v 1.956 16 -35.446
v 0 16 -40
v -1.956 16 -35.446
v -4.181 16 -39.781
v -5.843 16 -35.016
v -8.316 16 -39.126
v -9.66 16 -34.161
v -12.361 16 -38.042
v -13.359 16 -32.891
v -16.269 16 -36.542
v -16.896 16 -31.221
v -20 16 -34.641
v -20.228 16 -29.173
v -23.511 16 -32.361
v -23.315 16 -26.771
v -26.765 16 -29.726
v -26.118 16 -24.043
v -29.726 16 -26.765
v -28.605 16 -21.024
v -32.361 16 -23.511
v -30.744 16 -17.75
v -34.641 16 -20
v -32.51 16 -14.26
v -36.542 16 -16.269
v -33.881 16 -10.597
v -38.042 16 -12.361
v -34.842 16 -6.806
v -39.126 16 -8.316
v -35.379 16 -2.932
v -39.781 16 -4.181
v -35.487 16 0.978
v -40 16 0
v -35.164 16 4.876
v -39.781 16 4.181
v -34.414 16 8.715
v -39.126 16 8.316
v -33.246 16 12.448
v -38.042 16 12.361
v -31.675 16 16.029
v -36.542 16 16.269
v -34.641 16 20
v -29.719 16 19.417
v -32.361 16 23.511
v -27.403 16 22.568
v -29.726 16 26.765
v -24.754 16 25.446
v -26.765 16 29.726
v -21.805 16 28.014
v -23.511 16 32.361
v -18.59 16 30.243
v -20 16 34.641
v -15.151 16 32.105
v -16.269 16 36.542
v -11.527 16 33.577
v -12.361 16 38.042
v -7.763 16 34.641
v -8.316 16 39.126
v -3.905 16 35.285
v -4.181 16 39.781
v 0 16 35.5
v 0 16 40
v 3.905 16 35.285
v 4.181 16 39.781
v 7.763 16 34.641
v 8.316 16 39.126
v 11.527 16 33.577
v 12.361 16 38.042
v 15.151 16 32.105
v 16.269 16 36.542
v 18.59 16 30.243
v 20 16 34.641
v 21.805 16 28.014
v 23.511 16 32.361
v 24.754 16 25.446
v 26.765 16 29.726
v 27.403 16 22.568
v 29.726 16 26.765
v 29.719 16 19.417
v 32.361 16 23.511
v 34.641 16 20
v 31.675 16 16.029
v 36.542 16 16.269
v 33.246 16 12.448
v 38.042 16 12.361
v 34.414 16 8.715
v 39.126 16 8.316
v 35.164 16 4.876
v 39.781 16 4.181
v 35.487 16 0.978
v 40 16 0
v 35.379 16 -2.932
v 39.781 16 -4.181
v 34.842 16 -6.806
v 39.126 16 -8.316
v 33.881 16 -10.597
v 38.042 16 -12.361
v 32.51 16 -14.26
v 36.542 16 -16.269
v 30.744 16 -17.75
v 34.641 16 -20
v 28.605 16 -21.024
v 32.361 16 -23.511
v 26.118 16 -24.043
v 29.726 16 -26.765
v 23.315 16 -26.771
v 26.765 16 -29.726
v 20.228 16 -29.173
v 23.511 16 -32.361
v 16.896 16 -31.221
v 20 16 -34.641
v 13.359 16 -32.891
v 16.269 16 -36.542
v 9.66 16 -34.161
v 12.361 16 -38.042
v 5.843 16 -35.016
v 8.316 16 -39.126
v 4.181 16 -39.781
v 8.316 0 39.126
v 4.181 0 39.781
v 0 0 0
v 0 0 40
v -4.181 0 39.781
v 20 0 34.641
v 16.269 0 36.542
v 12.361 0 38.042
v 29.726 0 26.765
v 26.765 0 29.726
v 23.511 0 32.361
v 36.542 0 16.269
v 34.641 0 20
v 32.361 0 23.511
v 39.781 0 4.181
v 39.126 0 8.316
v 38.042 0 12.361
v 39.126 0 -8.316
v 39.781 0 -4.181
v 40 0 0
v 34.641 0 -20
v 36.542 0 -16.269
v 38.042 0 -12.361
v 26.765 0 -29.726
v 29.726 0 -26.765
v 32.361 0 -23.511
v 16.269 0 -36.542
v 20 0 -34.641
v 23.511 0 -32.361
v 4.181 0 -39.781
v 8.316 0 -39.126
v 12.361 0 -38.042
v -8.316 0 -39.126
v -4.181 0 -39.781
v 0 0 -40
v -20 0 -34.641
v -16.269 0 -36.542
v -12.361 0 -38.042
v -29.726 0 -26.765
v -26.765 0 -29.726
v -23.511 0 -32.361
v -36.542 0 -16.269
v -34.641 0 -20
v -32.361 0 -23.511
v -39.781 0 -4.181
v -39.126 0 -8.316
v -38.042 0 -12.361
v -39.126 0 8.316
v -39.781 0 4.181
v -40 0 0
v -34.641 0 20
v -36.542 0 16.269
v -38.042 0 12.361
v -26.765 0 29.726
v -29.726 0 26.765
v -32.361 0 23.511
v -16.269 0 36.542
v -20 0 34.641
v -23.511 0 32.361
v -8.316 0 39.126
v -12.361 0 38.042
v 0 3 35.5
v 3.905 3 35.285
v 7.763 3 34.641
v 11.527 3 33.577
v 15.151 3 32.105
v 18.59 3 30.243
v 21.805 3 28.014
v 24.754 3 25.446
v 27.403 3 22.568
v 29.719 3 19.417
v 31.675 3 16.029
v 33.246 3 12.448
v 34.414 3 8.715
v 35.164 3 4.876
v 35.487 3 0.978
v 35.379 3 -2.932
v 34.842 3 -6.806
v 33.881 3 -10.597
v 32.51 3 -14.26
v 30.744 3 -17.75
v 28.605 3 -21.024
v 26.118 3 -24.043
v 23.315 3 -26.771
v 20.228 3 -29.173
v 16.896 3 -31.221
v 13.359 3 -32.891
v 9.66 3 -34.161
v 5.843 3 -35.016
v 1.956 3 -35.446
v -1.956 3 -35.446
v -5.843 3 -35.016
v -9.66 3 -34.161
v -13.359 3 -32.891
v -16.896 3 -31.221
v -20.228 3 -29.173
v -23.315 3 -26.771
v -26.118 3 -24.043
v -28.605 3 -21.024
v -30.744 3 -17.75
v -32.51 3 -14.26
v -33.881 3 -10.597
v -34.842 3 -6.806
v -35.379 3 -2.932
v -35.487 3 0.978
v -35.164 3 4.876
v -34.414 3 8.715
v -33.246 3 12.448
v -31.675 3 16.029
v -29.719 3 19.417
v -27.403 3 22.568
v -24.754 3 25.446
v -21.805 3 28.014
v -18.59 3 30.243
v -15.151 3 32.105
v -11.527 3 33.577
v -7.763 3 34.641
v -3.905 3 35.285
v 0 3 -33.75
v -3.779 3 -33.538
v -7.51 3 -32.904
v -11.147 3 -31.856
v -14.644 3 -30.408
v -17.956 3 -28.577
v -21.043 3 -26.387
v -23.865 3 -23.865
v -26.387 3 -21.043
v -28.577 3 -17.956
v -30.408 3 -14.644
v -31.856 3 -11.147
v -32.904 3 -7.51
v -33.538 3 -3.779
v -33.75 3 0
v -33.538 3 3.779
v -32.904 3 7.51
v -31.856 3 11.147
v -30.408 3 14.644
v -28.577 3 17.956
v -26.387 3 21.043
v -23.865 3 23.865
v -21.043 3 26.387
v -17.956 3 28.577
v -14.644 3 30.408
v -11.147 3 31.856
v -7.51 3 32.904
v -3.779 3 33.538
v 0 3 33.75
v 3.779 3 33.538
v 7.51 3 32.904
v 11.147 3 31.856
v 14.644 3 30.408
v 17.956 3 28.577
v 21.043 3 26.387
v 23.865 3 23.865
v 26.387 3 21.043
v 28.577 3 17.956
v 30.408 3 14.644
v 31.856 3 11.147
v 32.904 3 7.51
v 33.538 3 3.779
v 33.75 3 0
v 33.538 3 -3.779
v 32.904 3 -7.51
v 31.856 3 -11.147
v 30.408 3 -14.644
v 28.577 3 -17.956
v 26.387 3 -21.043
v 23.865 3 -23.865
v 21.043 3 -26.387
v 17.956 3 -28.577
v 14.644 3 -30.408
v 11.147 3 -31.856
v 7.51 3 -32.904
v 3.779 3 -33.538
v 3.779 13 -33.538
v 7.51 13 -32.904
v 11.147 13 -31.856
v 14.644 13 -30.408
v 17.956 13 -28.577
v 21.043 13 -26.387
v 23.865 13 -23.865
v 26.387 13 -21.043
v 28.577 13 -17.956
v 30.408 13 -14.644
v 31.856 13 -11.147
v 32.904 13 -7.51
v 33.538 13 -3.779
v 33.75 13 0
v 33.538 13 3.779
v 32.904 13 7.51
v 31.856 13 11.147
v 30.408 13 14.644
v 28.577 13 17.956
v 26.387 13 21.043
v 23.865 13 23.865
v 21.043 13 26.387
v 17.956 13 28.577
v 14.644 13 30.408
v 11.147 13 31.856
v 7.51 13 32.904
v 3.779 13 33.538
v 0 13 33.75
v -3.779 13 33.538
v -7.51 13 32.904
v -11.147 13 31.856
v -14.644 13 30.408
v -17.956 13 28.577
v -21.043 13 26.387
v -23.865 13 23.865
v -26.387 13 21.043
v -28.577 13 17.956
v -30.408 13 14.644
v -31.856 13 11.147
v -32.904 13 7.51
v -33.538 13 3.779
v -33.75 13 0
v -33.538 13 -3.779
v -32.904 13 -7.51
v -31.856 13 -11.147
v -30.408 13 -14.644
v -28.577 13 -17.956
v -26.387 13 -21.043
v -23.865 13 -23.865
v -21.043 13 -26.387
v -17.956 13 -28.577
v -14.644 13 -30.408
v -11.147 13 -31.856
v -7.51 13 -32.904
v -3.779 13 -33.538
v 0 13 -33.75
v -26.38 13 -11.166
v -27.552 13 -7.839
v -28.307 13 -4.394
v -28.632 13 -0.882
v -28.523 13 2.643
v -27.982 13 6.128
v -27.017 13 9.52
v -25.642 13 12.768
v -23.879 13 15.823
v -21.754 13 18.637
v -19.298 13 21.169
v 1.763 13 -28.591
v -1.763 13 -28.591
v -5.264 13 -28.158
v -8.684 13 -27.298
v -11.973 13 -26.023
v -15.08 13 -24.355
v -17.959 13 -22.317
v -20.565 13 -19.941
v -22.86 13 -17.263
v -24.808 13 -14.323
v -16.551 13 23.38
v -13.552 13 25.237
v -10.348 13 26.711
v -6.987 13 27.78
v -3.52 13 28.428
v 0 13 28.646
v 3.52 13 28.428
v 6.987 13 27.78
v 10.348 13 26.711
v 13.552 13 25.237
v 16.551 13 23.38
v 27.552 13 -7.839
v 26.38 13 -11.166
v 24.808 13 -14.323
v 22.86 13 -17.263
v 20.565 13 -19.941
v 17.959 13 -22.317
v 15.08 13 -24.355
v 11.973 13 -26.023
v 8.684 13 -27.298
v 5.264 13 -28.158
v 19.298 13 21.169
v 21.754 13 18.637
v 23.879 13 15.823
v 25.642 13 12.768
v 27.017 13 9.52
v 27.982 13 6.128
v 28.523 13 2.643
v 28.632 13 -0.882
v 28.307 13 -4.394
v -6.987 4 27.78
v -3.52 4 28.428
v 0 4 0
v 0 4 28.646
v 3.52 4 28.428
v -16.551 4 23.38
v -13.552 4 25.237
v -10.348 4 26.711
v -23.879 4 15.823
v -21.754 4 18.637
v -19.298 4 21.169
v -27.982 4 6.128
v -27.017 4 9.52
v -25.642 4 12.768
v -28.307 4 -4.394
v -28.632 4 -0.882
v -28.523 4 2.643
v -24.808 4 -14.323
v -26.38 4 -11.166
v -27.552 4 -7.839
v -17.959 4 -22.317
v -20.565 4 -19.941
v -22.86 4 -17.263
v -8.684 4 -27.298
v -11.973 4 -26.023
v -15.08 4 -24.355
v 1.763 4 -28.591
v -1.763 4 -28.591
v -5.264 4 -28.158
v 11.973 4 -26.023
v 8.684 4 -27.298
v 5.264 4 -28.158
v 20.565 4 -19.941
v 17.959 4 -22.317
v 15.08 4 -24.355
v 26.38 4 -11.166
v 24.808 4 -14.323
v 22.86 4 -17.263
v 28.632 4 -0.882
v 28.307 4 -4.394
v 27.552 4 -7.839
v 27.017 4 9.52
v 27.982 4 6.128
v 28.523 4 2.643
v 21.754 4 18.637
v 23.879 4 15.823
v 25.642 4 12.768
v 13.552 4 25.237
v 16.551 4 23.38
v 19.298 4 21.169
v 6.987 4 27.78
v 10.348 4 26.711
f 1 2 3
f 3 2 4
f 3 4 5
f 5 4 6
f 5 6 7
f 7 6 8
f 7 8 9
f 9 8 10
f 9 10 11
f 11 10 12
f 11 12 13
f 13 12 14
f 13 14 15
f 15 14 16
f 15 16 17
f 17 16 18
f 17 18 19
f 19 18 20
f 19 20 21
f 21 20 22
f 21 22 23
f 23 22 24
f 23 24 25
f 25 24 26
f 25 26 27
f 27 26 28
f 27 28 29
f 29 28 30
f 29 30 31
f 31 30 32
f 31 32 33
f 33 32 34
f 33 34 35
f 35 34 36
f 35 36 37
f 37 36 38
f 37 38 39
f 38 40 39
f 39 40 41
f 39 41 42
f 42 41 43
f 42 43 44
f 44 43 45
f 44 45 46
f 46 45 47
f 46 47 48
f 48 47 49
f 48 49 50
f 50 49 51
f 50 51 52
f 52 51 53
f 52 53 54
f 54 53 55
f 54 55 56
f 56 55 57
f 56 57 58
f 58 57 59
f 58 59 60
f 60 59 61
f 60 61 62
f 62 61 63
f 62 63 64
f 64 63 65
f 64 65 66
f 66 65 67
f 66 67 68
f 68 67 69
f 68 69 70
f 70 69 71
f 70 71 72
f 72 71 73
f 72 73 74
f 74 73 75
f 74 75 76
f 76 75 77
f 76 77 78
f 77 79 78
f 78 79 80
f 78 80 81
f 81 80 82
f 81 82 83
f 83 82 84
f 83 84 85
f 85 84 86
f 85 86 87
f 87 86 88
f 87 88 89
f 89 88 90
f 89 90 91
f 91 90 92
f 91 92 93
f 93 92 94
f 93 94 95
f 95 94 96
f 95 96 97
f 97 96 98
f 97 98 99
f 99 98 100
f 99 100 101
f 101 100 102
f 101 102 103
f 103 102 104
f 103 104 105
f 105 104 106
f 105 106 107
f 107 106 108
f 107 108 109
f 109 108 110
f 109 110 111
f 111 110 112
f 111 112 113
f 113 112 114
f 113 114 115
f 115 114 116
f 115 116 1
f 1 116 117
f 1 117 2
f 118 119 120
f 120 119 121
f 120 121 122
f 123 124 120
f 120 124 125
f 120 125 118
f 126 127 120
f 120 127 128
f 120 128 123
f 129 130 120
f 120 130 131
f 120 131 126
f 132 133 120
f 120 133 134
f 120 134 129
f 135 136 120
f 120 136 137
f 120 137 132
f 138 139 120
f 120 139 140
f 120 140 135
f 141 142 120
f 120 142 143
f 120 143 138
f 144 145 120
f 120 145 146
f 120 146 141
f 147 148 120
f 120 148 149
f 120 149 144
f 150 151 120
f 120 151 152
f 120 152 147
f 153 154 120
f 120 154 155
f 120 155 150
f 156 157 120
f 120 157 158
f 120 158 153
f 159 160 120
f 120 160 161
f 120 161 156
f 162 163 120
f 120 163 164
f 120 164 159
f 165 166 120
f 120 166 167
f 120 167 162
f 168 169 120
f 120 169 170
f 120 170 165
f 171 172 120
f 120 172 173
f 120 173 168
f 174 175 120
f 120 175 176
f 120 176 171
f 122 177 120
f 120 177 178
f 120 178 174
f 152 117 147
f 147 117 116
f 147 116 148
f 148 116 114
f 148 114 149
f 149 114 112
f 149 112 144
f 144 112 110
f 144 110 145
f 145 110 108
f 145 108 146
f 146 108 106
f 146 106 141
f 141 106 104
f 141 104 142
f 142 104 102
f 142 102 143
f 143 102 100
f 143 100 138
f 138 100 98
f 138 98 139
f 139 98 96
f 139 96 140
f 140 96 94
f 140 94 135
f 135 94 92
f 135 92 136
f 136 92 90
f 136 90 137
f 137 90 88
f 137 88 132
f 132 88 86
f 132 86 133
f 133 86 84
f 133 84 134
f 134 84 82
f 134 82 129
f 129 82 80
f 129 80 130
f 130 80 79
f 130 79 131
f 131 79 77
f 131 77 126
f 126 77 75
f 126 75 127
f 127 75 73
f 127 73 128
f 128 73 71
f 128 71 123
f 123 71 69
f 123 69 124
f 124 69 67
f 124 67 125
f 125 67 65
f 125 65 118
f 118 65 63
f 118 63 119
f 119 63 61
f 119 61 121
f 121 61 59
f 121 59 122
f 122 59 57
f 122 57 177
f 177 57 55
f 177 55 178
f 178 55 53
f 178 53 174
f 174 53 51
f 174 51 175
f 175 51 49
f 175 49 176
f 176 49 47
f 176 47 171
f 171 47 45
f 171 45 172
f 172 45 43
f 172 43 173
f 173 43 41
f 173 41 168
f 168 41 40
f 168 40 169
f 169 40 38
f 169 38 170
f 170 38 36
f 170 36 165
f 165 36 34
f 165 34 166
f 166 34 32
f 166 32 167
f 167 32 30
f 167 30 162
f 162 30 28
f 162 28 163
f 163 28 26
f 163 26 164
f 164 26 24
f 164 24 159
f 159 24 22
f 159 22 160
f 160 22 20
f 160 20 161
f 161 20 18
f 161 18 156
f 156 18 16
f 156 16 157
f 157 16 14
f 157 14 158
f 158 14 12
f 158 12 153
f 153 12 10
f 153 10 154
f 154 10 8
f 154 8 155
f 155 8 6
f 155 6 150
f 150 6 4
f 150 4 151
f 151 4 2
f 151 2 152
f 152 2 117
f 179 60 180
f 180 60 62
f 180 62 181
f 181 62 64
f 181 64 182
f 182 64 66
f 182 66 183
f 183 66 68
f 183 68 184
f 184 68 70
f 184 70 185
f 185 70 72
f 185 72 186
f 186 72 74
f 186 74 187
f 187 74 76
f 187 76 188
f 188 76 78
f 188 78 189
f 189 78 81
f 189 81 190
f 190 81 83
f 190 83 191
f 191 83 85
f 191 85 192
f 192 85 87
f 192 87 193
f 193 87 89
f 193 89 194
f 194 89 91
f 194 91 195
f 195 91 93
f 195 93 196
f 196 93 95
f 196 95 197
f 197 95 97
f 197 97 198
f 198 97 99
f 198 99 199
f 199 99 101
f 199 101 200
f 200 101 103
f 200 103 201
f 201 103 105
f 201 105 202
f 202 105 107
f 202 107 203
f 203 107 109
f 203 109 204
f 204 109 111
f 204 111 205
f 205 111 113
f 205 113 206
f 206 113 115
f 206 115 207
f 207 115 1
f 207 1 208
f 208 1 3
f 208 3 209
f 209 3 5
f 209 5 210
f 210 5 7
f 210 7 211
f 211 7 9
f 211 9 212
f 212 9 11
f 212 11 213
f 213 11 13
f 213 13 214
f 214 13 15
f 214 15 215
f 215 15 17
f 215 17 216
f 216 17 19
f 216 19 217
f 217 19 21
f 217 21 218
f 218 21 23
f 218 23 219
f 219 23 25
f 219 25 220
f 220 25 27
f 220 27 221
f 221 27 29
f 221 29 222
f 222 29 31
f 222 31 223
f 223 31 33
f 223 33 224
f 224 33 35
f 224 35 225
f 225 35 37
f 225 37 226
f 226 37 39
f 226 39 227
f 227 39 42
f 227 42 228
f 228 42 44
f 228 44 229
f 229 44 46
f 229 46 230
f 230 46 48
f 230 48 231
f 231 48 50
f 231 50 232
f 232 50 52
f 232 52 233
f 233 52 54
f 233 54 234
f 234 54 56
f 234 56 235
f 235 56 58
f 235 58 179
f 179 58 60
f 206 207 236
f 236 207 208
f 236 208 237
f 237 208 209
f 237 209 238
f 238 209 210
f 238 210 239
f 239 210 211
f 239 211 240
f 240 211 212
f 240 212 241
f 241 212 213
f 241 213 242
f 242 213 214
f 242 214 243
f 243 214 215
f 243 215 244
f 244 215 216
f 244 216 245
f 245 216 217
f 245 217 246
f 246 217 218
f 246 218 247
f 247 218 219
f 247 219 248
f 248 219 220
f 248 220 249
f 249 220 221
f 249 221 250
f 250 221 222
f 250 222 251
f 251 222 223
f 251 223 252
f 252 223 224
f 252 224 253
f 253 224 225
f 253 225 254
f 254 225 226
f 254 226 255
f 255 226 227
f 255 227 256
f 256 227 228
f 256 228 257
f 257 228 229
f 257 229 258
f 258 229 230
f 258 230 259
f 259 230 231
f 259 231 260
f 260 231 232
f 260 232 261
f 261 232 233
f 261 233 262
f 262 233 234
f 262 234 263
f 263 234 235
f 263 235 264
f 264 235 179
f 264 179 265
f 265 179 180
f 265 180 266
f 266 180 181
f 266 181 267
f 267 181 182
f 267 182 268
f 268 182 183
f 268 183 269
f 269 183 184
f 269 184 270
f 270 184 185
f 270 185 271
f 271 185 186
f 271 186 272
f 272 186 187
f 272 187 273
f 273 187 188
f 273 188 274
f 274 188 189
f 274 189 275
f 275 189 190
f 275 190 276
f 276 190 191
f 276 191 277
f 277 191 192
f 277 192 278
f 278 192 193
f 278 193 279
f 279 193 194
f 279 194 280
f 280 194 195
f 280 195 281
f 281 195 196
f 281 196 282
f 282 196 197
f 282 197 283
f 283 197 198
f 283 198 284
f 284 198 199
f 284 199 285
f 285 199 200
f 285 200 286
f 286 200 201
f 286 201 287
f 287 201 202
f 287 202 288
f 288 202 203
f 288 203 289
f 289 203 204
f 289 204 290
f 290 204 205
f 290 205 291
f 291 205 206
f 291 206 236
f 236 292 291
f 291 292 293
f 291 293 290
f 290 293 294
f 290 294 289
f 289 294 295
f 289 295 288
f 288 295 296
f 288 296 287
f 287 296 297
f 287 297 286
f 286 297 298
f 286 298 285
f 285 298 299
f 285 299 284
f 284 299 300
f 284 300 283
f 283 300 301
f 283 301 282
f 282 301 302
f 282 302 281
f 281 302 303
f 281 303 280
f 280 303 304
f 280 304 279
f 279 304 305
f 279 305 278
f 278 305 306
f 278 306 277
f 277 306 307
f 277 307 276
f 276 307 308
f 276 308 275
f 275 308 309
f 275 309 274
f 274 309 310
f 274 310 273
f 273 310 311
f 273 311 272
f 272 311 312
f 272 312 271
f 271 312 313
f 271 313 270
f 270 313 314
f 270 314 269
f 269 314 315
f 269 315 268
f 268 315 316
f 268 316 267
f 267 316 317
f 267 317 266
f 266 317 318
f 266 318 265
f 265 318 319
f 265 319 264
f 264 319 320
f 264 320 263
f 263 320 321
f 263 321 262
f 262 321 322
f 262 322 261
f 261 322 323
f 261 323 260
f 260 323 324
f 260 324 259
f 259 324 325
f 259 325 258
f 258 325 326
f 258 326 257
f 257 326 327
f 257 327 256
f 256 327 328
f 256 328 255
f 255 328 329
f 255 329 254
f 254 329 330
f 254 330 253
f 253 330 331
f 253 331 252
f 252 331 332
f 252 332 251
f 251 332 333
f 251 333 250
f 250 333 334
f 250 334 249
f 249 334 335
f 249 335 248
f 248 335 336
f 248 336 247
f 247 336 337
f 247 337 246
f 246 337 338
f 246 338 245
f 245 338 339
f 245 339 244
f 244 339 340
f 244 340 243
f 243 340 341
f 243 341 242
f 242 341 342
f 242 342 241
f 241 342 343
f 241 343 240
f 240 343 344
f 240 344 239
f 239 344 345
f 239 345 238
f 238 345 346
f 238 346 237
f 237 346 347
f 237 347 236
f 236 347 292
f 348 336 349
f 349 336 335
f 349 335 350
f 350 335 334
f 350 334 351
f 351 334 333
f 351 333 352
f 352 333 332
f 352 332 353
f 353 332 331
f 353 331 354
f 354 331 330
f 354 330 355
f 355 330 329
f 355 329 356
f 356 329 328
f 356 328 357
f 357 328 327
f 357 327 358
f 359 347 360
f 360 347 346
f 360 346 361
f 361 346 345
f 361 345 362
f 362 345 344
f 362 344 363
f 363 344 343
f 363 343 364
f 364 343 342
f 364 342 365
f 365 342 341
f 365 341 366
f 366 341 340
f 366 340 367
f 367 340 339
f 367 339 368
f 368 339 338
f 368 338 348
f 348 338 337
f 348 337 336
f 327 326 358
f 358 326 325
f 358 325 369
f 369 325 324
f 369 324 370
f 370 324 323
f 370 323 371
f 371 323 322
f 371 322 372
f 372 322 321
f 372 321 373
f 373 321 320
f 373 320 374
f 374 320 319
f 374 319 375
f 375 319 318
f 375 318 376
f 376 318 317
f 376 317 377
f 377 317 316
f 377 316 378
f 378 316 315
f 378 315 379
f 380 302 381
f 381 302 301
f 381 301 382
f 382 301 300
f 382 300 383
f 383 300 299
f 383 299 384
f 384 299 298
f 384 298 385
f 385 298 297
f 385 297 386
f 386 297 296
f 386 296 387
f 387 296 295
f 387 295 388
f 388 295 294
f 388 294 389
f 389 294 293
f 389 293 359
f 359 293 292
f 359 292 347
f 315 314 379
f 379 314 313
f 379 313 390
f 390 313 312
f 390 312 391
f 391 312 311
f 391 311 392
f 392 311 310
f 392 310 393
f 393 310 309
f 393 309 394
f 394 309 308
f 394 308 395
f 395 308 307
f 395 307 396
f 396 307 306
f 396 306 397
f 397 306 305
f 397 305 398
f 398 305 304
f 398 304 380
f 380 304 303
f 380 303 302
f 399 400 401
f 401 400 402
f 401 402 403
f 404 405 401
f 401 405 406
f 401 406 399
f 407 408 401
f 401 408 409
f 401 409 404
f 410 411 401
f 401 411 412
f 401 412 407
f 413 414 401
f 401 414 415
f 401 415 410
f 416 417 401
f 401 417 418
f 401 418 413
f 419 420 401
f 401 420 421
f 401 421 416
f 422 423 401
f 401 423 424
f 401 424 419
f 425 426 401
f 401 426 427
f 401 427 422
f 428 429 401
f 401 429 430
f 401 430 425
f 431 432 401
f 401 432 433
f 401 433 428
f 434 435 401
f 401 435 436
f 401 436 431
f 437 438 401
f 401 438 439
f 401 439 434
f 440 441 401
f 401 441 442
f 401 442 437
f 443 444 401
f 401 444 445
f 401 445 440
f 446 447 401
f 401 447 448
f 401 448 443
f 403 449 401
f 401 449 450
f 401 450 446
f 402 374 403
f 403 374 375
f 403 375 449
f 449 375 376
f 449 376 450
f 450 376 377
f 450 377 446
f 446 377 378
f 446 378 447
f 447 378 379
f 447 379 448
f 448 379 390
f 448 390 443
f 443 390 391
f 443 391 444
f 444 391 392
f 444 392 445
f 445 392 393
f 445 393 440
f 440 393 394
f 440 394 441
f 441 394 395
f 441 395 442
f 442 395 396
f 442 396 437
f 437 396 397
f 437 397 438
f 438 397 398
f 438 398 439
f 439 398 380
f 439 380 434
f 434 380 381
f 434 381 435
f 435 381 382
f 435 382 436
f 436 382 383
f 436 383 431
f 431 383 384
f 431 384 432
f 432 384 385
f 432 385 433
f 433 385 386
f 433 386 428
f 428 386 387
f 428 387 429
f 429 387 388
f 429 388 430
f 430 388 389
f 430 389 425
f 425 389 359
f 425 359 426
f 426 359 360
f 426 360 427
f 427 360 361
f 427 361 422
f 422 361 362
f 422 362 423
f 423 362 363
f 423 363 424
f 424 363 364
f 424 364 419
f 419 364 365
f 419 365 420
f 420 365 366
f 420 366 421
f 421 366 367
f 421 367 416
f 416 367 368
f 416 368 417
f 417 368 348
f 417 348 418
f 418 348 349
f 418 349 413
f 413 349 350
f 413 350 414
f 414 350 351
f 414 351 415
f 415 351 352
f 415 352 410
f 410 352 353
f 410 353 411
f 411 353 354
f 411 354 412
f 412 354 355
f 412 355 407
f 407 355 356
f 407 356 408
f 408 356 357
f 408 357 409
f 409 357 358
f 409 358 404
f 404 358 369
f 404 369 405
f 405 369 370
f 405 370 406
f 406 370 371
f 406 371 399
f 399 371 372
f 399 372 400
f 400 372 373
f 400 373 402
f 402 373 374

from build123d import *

# Parameters (mm, degrees)
SKETCH1_R           = 40
BOSS_EXTRUDE1_DEPTH = 13
SKETCH3_R           = 35
CUT_EXTRUDE1_DEPTH  = 10
SKETCH4_R           = 33
BOSS_EXTRUDE2_DEPTH = 4
SKETCH7_R           = 40
SKETCH7_R_2         = 35
BOSS_EXTRUDE3_DEPTH = 3
SKETCH8_R           = 35.5
CUT_EXTRUDE2_DEPTH  = 13
SKETCH9_R           = 33.75
BOSS_EXTRUDE6_DEPTH = 7
SKETCH10_R          = 28.645528411
CUT_EXTRUDE3_DEPTH  = 6
SKETCH11_R          = 33.75
SKETCH11_R_2        = 28.645528411
BOSS_EXTRUDE8_DEPTH = 3


with BuildPart() as part:
    # Sketch1 → Boss-Extrude1 (new body)
    with BuildSketch(Plane(origin=(0, 0, 0), x_dir=(1, 0, 0), z_dir=(0, 1, 0))):
        with Locations(Location((0, 0, 0), (0, 0, 270))):
            Circle(SKETCH1_R)
    extrude(amount=BOSS_EXTRUDE1_DEPTH)

    # Sketch3 → Cut-Extrude1 (cut)
    with BuildSketch(Plane(origin=(0, 13, 0), x_dir=(1, 0, 0), z_dir=(0, 1, 0))):
        with Locations(Location((0, 0, 0), (0, 0, 270))):
            Circle(SKETCH3_R)
    extrude(amount=-CUT_EXTRUDE1_DEPTH, mode=Mode.SUBTRACT)

    # Sketch4 → Boss-Extrude2 (add)
    with BuildSketch(Plane(origin=(0, 3, 0), x_dir=(1, 0, 0), z_dir=(0, 1, 0))):
        with Locations(Location((0, 0, 0), (0, 0, 270))):
            Circle(SKETCH4_R)
    extrude(amount=BOSS_EXTRUDE2_DEPTH)

    # Sketch7 → Boss-Extrude3 (add)
    with BuildSketch(Plane(origin=(0, 13, 0), x_dir=(1, 0, 0), z_dir=(0, 1, 0))):
        with Locations(Location((0, 0, 0), (0, 0, 270))):
            Circle(SKETCH7_R)
        with Locations(Location((0, 0, 0), (0, 0, 270))):
            Circle(SKETCH7_R_2, mode=Mode.SUBTRACT)
    extrude(amount=BOSS_EXTRUDE3_DEPTH)

    # Sketch8 → Cut-Extrude2 (cut)
    with BuildSketch(Plane(origin=(0, 16, 0), x_dir=(1, 0, 0), z_dir=(0, 1, 0))):
        with Locations(Location((0, 0, 0), (0, 0, 270))):
            Circle(SKETCH8_R)
    extrude(amount=-CUT_EXTRUDE2_DEPTH, mode=Mode.SUBTRACT)

    # Sketch9 → Boss-Extrude6 (add)
    with BuildSketch(Plane(origin=(0, 3, 0), x_dir=(1, 0, 0), z_dir=(0, 1, 0))):
        with Locations(Location((0, 0, 0), (0, 0, 90))):
            Circle(SKETCH9_R)
    extrude(amount=BOSS_EXTRUDE6_DEPTH)

    # Sketch10 → Cut-Extrude3 (cut)
    with BuildSketch(Plane(origin=(0, 10, 0), x_dir=(1, 0, 0), z_dir=(0, 1, 0))):
        with Locations(Location((0, 0, 0), (0, 0, 270))):
            Circle(SKETCH10_R)
    extrude(amount=-CUT_EXTRUDE3_DEPTH, mode=Mode.SUBTRACT)

    # Sketch11 → Boss-Extrude8 (add)
    with BuildSketch(Plane(origin=(0, 10, 0), x_dir=(1, 0, 0), z_dir=(0, 1, 0))):
        with Locations(Location((0, 0, 0), (0, 0, 90))):
            Circle(SKETCH11_R)
        with Locations(Location((0, 0, 0), (0, 0, 270))):
            Circle(SKETCH11_R_2, mode=Mode.SUBTRACT)
    extrude(amount=BOSS_EXTRUDE8_DEPTH)


solid = part.part
